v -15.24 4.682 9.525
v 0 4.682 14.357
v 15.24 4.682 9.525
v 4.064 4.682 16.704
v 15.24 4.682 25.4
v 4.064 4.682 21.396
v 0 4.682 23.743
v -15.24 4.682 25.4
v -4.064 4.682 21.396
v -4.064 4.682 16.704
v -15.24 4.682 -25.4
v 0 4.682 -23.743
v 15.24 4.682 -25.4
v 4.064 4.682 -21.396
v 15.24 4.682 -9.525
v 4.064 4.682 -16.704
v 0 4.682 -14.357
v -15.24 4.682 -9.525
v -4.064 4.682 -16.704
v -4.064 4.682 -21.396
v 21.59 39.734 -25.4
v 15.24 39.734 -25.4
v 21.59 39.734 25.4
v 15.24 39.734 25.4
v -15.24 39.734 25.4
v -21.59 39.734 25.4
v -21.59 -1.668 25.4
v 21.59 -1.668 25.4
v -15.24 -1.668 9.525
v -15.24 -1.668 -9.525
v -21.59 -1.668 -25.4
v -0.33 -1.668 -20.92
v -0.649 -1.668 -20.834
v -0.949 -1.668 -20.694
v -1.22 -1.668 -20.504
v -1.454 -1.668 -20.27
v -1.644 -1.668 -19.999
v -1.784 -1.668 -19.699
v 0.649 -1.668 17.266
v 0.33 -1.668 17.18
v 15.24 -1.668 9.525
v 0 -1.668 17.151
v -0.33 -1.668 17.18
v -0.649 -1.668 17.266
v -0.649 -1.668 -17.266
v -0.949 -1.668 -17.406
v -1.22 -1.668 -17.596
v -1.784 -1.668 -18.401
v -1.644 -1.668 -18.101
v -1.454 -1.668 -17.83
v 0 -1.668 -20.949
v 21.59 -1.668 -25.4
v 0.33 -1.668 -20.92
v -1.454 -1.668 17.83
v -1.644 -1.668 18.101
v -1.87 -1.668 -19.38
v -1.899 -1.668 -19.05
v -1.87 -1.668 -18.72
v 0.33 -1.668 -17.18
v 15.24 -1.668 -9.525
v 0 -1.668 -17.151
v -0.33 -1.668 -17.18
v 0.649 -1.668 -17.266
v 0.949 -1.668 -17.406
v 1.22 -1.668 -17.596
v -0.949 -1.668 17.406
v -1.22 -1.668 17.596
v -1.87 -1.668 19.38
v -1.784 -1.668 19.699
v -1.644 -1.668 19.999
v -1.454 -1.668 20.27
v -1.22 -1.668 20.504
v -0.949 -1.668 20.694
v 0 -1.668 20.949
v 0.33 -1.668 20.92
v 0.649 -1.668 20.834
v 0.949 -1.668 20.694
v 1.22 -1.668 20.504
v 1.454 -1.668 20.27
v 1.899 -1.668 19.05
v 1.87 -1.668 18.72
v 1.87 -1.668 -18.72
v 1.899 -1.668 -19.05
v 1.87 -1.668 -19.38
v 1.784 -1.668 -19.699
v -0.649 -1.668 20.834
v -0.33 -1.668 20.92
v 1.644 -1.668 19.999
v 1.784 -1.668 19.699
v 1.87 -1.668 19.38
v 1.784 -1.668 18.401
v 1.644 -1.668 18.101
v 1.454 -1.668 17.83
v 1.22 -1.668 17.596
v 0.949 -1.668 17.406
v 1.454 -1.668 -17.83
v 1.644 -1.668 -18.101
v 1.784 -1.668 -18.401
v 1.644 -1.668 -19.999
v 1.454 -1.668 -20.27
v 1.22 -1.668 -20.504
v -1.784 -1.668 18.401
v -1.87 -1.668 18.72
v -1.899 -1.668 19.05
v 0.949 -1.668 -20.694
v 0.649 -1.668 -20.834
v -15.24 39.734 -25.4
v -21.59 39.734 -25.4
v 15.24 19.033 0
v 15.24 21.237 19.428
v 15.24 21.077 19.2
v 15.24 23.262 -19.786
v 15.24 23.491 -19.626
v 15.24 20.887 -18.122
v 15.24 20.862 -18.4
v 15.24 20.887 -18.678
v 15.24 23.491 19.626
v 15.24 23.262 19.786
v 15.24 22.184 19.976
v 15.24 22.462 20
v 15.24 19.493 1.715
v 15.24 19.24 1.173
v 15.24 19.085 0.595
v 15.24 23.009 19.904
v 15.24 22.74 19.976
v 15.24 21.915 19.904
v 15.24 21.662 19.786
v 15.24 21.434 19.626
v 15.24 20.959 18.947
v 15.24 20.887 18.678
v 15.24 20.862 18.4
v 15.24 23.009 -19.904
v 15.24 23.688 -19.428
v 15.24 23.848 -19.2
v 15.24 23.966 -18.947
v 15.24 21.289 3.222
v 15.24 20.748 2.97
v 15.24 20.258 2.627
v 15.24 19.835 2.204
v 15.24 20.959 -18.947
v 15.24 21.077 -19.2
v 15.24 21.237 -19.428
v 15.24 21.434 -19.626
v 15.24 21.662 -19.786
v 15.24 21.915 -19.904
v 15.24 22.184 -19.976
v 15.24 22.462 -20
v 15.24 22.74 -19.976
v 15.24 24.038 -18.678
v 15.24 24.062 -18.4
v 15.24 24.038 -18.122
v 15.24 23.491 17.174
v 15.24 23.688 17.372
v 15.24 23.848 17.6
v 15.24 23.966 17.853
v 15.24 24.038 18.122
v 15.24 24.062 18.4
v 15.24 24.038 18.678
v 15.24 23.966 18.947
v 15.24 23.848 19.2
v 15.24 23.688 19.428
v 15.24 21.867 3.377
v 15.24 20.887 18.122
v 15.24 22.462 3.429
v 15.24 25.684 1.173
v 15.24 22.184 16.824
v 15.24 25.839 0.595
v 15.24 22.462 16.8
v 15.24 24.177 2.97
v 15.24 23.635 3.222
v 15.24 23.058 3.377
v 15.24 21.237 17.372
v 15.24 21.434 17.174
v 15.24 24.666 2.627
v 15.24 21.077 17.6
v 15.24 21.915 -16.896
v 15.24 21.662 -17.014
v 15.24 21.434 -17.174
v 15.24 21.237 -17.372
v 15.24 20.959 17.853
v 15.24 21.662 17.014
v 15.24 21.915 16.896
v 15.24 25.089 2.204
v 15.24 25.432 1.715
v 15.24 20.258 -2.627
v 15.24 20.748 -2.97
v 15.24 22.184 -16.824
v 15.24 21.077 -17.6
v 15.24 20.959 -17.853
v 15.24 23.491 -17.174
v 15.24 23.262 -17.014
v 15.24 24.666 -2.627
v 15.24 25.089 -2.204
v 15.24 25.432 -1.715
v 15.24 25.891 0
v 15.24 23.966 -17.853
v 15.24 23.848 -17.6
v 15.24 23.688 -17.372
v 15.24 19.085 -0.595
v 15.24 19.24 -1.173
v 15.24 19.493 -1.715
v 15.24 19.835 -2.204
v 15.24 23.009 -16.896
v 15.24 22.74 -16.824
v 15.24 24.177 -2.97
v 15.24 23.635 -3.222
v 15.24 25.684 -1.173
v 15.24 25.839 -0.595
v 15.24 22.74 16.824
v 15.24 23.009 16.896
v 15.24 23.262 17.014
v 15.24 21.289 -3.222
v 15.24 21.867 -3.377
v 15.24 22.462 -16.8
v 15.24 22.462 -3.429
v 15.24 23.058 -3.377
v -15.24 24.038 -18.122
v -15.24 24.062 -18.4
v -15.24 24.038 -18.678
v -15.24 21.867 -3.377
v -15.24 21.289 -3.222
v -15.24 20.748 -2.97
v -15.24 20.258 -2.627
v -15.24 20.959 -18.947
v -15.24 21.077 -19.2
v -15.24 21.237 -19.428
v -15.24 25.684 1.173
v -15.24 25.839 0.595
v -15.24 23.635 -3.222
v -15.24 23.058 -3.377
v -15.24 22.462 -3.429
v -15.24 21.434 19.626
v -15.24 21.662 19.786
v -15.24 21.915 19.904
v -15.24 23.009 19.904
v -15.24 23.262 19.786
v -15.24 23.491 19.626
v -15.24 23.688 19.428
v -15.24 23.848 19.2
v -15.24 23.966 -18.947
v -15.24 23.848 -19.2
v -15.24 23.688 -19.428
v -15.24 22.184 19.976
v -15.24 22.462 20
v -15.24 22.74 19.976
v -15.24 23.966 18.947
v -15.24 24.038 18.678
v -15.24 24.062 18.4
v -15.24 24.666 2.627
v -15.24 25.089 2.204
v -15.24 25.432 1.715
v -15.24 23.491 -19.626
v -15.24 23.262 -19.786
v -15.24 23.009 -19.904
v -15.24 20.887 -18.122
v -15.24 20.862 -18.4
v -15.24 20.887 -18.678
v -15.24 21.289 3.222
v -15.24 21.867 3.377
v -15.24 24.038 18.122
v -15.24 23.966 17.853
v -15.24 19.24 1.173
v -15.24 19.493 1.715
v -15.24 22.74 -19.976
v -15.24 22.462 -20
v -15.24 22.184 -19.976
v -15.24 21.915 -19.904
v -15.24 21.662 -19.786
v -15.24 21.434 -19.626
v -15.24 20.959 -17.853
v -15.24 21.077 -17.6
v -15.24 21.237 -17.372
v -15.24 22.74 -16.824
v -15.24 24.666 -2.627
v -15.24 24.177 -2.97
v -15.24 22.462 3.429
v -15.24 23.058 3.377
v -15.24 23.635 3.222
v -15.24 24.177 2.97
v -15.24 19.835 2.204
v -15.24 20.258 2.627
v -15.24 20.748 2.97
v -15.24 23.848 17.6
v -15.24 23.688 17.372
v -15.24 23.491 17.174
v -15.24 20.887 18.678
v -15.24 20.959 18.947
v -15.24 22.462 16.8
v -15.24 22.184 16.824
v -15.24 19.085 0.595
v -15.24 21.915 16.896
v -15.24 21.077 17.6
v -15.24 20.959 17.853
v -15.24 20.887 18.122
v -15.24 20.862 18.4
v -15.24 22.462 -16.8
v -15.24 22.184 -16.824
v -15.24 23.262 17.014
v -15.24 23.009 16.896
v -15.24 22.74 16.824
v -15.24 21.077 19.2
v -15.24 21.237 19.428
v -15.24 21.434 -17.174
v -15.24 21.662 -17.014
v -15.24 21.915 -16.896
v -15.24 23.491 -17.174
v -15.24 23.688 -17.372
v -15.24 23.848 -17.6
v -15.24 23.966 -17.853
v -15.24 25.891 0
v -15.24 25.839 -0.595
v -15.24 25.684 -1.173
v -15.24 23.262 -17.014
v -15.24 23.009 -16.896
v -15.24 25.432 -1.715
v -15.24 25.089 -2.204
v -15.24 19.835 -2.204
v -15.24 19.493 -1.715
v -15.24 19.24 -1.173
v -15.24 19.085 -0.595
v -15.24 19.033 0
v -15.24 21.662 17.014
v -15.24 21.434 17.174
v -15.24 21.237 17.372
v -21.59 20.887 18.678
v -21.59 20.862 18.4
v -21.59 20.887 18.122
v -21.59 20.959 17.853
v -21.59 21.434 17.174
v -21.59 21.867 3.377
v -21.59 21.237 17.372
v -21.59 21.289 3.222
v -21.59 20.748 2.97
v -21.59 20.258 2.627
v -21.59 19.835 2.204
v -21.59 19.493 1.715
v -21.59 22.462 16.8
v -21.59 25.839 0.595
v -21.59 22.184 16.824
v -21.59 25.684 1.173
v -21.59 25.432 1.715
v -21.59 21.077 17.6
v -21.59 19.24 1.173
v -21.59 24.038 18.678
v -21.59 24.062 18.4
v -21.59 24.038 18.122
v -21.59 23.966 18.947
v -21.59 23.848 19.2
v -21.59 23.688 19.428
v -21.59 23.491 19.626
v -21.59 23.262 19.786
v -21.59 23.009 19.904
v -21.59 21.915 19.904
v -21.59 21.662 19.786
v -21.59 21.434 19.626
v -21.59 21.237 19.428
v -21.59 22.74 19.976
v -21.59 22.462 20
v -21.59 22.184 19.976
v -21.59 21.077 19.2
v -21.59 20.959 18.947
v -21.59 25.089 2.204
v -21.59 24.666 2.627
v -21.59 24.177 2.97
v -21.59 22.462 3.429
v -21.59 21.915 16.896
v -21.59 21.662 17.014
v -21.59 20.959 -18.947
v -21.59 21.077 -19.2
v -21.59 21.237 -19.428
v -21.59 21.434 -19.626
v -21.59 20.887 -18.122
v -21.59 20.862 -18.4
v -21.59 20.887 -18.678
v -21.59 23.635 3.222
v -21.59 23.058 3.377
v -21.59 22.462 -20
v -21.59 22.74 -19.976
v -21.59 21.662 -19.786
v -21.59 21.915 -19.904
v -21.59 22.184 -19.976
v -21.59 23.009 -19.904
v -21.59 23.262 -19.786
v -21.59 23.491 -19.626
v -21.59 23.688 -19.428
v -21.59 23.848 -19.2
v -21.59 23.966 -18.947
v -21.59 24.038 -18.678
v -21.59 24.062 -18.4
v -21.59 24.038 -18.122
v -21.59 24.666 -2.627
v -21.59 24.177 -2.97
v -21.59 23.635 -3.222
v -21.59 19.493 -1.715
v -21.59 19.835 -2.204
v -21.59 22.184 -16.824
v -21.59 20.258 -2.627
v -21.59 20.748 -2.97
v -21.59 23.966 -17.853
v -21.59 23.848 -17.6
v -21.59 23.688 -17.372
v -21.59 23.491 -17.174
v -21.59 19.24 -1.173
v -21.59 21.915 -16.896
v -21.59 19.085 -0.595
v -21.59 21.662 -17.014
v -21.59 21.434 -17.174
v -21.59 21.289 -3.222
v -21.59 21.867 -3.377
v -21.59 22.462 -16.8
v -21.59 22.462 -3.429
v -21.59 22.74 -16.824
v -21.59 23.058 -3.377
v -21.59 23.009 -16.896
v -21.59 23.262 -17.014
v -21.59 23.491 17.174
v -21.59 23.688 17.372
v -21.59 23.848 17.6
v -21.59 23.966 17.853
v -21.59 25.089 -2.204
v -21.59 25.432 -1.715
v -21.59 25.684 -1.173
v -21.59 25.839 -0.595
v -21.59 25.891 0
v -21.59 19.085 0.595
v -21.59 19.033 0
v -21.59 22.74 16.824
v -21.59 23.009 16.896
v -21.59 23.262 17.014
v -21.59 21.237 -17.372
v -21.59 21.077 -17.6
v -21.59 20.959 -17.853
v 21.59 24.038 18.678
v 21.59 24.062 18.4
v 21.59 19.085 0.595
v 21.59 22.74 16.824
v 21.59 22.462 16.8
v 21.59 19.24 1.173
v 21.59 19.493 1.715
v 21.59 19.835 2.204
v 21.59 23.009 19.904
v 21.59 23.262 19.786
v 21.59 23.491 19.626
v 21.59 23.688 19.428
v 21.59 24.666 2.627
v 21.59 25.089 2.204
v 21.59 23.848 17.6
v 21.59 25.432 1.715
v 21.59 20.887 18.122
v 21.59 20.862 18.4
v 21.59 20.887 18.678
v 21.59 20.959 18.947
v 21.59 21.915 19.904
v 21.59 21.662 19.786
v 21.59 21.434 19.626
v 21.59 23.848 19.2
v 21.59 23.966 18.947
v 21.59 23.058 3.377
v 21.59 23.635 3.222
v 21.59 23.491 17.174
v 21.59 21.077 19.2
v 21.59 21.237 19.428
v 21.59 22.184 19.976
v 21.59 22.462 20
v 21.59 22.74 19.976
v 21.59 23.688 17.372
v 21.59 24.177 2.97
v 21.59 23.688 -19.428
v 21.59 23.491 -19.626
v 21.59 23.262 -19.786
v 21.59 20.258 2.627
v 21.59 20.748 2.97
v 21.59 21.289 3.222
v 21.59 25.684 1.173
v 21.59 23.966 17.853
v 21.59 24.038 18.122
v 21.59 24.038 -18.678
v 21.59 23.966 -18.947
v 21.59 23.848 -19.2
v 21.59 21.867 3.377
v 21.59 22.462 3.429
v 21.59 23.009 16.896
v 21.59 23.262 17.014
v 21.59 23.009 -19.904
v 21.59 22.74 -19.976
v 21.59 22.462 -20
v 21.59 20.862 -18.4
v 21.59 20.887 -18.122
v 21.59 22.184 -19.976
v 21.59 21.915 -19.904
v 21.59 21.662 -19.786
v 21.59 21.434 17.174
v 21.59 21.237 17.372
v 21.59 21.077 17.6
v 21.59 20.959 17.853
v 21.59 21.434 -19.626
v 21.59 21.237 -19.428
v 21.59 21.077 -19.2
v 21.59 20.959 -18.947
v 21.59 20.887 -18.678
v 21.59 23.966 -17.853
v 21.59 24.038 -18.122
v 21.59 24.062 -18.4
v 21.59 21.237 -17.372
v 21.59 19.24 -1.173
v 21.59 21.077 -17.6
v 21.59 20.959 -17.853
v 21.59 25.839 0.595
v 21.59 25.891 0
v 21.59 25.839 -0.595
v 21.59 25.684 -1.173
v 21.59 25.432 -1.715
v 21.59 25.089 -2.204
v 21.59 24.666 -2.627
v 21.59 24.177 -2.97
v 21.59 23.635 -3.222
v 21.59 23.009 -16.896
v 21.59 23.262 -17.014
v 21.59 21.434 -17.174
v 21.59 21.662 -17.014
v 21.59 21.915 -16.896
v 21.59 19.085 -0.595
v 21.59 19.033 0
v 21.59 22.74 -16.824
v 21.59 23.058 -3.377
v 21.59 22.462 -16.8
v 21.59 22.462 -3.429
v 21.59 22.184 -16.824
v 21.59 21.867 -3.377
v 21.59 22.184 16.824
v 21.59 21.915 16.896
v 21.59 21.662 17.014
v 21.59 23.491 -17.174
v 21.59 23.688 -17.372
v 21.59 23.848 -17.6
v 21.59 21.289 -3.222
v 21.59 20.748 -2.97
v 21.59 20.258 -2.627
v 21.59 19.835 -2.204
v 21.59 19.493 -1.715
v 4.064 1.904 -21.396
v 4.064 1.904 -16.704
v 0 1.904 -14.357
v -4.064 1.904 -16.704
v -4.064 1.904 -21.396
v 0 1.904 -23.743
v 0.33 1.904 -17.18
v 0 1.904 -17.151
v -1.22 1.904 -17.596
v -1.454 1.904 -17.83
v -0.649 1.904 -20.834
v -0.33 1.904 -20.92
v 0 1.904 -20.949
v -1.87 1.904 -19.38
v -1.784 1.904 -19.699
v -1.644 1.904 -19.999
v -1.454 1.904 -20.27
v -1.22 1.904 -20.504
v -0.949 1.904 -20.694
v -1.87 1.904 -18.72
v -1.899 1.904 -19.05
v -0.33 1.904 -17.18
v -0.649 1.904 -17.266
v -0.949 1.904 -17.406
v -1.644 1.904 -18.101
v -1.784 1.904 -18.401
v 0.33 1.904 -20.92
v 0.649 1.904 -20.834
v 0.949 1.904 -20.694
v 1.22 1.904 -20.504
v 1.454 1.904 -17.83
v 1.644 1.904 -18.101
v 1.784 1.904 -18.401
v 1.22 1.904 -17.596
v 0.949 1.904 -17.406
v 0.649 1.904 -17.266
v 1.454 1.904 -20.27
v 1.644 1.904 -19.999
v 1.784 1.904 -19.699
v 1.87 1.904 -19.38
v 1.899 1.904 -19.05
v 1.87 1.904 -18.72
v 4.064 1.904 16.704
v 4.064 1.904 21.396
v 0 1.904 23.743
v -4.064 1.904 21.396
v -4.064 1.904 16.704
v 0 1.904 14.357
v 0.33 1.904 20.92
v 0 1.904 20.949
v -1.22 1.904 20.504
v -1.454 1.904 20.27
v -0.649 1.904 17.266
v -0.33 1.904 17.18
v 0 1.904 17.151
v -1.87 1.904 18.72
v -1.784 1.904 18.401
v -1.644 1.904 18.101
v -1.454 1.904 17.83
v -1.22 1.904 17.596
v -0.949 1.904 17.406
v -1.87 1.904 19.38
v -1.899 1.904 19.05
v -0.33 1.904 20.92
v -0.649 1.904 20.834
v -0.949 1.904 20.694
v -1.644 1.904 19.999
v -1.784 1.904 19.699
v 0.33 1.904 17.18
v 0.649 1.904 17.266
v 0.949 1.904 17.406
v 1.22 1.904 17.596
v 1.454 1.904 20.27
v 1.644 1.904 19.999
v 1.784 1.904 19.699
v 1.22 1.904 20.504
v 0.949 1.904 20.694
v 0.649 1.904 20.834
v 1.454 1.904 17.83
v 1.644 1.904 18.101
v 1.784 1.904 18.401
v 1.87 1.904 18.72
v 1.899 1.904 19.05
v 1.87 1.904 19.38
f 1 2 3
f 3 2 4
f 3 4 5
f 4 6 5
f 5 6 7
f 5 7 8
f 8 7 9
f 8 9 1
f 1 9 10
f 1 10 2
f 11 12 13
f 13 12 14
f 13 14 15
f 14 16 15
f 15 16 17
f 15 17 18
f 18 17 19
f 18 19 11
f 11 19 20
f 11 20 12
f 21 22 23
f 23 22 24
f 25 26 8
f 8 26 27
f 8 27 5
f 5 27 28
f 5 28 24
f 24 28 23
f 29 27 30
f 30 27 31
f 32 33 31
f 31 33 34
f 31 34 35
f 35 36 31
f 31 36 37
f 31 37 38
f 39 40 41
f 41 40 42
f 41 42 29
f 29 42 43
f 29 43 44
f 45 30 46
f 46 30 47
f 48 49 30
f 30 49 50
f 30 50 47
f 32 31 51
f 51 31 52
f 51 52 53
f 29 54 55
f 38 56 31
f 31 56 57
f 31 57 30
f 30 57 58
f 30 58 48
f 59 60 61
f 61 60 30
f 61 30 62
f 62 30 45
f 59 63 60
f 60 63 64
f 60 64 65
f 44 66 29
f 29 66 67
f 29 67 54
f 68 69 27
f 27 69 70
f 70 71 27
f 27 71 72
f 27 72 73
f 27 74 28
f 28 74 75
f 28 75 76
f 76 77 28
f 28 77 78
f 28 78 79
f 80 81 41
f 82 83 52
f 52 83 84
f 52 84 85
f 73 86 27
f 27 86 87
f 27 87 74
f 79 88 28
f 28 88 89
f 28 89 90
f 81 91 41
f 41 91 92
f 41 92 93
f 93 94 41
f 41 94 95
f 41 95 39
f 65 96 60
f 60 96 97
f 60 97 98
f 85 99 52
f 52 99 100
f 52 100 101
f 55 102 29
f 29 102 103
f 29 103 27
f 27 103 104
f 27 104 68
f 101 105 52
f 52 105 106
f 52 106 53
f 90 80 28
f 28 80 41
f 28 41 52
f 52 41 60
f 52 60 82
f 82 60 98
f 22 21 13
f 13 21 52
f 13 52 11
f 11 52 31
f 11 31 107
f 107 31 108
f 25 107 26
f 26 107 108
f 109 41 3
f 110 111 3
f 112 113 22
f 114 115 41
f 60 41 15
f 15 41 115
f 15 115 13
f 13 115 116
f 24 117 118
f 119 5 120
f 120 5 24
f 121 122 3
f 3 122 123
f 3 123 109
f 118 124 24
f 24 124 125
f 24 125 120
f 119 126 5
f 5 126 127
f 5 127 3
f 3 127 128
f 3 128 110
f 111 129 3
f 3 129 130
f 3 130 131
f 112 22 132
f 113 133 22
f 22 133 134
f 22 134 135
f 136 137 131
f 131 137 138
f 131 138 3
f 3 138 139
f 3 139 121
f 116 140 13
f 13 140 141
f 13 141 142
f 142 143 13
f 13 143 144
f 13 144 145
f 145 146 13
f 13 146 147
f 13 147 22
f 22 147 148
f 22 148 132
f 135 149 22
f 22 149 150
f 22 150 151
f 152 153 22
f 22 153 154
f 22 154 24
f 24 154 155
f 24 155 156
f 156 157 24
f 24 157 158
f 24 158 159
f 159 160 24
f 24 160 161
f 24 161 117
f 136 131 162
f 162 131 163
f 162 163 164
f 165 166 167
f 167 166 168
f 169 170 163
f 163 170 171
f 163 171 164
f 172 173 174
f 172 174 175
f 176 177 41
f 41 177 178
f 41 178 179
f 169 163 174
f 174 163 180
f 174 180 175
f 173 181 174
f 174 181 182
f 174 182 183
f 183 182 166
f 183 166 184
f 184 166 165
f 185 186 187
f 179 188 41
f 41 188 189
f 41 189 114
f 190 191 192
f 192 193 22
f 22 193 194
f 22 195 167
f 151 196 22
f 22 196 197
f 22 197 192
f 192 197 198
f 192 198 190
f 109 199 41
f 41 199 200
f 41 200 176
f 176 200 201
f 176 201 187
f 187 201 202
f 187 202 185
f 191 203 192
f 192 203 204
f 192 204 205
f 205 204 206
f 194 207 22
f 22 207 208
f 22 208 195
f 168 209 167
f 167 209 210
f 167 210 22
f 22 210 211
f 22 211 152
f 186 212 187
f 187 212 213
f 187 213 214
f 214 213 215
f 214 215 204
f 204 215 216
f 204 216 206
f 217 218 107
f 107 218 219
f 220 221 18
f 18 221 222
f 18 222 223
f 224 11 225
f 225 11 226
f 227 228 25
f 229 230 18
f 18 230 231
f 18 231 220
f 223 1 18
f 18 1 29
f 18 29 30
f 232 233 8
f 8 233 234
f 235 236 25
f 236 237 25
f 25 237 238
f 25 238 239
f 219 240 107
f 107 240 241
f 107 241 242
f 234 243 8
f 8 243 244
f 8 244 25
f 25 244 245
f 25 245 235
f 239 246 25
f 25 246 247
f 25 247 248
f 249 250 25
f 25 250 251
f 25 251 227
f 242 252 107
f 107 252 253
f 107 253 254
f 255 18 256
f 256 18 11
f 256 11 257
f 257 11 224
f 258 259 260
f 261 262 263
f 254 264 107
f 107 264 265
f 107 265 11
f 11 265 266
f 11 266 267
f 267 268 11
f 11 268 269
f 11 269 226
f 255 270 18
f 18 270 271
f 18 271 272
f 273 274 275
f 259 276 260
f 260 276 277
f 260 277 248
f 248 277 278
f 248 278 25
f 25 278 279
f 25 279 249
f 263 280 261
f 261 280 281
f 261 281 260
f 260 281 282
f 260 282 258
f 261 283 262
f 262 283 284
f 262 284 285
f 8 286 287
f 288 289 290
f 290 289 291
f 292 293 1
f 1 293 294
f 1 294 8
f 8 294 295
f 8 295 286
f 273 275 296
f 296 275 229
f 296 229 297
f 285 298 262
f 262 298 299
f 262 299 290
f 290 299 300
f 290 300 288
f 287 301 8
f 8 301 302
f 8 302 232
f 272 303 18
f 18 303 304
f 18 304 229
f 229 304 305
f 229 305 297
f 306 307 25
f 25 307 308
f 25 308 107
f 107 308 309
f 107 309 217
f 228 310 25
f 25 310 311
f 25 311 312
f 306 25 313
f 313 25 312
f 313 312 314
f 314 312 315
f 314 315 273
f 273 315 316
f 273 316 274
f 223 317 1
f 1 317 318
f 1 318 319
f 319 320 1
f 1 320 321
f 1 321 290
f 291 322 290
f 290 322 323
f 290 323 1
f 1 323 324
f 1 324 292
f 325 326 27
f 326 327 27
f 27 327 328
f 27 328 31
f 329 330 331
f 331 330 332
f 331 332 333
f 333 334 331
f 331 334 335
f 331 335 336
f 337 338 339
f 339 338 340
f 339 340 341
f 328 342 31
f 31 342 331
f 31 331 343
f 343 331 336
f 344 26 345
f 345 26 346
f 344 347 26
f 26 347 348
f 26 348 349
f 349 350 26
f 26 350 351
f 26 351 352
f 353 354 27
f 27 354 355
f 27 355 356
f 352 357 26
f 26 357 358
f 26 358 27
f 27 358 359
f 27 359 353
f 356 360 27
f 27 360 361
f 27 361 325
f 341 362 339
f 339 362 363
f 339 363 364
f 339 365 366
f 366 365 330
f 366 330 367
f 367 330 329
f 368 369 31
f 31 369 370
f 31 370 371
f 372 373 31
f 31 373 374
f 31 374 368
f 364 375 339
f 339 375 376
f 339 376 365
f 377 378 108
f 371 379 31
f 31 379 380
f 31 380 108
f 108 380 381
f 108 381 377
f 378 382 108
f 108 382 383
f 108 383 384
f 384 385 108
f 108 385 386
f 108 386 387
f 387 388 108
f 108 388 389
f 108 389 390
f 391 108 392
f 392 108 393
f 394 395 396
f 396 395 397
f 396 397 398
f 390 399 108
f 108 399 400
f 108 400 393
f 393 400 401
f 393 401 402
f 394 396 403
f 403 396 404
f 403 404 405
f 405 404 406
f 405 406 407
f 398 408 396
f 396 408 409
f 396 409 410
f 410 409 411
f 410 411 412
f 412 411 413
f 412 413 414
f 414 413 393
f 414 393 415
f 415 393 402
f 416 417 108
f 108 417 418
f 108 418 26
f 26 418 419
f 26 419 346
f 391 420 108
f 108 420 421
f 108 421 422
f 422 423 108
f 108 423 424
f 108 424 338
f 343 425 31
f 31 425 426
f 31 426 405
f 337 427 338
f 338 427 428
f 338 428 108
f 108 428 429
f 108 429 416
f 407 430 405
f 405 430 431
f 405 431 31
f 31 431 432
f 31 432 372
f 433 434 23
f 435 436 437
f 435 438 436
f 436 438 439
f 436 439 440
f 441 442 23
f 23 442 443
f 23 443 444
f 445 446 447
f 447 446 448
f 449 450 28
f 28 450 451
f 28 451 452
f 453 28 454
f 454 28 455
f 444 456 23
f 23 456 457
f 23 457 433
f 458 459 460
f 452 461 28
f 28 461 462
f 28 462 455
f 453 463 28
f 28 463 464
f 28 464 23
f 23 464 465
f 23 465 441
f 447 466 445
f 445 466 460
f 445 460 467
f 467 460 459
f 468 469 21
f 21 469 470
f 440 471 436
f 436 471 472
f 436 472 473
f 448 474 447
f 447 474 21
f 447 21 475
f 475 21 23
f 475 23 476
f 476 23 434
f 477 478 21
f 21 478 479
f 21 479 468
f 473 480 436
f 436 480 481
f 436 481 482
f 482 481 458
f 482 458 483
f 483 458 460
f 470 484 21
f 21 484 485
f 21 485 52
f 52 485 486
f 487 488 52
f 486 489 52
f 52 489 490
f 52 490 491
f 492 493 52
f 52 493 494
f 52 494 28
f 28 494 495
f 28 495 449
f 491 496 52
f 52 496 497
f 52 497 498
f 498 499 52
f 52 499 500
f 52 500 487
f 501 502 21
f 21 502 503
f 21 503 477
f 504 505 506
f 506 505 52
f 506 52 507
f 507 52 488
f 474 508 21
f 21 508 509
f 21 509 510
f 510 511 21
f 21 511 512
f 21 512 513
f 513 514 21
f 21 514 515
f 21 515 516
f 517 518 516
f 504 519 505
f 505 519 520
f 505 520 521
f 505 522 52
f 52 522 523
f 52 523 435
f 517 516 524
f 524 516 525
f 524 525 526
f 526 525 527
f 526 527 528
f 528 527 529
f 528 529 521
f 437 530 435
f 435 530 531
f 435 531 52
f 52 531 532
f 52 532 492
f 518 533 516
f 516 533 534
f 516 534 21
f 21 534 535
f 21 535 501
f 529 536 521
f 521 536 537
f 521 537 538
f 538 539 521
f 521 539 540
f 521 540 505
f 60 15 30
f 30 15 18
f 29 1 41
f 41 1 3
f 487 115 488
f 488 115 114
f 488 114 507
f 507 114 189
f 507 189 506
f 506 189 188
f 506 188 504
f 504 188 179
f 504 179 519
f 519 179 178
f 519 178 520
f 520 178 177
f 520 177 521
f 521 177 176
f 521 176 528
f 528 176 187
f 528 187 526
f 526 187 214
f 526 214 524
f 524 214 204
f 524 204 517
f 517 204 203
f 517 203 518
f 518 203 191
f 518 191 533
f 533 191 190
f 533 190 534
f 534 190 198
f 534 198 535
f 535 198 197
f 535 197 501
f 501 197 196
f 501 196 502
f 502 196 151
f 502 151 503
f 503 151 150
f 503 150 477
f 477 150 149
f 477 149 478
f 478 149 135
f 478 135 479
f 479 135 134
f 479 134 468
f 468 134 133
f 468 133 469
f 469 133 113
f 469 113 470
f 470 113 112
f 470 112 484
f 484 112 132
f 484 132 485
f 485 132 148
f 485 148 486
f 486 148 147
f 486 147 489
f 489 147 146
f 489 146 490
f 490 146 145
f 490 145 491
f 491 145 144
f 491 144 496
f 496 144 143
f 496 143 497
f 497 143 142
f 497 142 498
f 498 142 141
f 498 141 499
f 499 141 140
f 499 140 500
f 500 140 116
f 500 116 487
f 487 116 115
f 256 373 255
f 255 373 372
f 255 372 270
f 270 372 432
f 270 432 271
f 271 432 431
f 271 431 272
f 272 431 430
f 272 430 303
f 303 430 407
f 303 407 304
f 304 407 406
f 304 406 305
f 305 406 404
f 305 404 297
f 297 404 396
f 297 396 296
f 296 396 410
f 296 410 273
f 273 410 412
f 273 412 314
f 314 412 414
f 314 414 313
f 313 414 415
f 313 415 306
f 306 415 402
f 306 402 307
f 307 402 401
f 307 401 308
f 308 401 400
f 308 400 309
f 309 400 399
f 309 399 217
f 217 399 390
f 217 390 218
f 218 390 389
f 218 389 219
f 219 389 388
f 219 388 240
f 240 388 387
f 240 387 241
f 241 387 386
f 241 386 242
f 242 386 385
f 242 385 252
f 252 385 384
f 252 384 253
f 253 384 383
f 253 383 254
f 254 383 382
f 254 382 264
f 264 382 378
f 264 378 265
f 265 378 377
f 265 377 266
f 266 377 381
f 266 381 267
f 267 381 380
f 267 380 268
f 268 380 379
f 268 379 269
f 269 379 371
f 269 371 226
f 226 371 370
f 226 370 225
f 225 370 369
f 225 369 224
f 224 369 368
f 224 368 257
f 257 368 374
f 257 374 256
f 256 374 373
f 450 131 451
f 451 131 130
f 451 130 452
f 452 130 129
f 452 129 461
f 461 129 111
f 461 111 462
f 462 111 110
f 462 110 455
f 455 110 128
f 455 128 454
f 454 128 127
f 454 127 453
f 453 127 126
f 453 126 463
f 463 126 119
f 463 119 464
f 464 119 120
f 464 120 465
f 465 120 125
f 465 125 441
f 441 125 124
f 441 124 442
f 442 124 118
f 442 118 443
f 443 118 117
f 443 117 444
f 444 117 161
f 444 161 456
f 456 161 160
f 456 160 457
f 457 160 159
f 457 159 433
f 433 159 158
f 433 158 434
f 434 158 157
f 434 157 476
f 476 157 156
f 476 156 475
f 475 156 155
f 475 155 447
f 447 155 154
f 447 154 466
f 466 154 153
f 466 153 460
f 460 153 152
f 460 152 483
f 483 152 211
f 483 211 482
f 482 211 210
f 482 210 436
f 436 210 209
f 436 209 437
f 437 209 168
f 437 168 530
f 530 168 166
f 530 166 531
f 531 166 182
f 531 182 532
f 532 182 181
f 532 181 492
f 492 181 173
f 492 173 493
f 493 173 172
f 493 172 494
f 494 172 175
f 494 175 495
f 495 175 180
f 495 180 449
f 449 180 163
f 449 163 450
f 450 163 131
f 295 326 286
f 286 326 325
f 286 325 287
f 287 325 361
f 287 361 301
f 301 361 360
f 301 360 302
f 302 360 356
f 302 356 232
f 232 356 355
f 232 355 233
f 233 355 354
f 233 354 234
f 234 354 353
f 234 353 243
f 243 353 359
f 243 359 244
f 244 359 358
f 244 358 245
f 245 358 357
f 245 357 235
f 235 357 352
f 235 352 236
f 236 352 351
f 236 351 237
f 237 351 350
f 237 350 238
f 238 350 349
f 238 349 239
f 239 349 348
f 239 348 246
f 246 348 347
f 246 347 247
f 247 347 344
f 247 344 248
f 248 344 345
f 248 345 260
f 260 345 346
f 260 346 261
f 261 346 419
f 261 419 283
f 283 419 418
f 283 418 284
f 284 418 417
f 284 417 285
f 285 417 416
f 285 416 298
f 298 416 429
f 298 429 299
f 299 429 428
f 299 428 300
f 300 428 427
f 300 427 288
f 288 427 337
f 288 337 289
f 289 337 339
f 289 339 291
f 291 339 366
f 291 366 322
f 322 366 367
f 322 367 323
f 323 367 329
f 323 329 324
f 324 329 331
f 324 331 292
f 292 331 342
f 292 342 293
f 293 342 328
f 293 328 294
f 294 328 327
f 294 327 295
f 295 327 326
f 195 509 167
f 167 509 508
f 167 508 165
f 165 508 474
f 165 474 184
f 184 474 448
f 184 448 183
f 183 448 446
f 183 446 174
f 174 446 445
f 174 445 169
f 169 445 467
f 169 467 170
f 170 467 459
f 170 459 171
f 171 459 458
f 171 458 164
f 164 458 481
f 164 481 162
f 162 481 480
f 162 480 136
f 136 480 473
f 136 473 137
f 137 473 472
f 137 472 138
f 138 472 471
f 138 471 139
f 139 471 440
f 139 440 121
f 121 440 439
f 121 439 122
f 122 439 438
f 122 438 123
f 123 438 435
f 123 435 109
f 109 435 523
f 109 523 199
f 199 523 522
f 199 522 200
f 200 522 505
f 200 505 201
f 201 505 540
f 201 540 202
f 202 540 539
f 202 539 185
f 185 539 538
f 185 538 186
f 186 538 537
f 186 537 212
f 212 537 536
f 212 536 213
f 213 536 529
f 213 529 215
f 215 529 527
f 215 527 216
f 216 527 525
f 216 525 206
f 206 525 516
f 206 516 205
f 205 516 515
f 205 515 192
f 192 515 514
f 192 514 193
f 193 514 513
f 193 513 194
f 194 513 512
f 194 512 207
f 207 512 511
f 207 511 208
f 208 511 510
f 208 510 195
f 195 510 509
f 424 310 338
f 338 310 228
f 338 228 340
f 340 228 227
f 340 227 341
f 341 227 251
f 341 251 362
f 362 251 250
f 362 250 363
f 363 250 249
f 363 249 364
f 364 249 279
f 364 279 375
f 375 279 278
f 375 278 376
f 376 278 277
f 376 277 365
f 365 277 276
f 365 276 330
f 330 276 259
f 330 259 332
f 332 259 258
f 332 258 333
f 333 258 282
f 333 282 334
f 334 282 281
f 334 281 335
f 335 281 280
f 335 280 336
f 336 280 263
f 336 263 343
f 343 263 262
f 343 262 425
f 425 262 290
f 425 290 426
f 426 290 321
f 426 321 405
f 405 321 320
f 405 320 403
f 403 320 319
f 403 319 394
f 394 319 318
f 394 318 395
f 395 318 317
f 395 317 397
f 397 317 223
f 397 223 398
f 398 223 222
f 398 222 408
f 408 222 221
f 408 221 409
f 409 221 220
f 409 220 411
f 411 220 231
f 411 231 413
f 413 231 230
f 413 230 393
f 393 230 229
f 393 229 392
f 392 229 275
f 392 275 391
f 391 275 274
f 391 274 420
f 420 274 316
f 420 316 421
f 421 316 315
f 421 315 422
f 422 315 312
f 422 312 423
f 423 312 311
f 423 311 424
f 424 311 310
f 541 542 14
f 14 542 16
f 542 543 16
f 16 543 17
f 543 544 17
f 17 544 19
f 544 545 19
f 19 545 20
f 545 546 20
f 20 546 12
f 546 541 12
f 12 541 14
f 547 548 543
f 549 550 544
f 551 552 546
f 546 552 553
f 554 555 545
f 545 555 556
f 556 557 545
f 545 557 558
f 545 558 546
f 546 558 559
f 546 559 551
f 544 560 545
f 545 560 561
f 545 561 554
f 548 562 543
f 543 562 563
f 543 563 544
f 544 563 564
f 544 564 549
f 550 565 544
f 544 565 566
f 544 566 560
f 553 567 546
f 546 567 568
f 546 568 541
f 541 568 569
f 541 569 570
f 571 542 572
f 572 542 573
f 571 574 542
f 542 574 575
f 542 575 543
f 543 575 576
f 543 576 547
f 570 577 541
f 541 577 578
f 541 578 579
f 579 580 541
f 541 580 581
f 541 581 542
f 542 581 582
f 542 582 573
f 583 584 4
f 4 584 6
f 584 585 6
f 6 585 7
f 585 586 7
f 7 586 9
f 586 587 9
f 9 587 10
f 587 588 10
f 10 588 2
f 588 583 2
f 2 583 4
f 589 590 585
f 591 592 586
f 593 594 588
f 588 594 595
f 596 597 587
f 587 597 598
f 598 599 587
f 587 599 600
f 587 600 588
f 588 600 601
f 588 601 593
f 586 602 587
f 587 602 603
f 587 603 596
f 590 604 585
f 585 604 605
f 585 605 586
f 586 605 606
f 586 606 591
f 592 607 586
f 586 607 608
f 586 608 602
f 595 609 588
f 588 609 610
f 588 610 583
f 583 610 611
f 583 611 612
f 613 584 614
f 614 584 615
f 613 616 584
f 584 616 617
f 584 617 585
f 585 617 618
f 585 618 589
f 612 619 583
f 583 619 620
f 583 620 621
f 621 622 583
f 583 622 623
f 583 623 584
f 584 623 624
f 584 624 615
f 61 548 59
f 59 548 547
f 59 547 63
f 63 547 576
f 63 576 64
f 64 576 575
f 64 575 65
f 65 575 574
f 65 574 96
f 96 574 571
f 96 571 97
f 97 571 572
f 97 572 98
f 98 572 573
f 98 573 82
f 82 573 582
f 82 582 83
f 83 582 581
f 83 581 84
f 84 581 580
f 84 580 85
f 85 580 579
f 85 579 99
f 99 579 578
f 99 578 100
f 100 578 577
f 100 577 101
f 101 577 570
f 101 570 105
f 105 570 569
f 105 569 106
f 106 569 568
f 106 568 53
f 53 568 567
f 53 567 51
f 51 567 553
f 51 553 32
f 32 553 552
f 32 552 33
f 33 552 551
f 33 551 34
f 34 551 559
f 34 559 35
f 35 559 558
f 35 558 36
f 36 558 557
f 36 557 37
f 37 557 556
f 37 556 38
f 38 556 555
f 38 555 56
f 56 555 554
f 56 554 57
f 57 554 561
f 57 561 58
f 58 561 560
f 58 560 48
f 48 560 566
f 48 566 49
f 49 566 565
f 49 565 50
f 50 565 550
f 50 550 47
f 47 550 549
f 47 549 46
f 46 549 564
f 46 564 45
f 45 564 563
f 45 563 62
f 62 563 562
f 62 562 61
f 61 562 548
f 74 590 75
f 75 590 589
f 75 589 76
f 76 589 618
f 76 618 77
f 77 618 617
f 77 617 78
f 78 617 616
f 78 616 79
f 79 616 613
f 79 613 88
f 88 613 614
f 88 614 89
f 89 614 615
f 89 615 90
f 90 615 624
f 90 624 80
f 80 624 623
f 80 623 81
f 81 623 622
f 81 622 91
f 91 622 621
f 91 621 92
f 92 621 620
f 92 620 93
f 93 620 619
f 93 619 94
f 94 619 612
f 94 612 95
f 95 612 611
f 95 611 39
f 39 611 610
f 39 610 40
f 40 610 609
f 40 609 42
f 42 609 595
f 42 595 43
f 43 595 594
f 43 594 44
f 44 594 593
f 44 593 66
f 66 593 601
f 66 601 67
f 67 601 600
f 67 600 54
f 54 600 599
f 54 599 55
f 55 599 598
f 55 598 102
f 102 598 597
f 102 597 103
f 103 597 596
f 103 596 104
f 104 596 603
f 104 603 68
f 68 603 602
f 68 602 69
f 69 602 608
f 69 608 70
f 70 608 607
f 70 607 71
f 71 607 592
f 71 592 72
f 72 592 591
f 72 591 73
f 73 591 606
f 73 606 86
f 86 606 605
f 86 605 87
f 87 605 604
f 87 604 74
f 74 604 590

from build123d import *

# Parameters (mm, degrees)
BOSS_EXTRUDE1_DEPTH      = 12.7
BOSS_EXTRUDE1_DEPTH_BACK = 12.7
SKETCH1_R                = 4.445
SKETCH9_W                = 30.48
SKETCH9_H                = 35.052
CUT_EXTRUDE6_DEPTH       = 60.613097773
BOSS_EXTRUDE3_DEPTH      = 12.7
SKETCH11_W               = 5.350768363
SKETCH11_H               = 57.15
CUT_EXTRUDE7_DEPTH       = 75.08914513
SKETCH12_W               = 30.48
SKETCH12_H               = 19.05
CUT_EXTRUDE8_DEPTH       = 89.211973463
SKETCH14_R               = 1.6
CUT_EXTRUDE9_DEPTH       = 75.795998583
SKETCH15_R               = 3.429
CUT_EXTRUDE10_DEPTH      = 75.795998583
CUT_EXTRUDE11_DEPTH      = 2.778125
F_6_CLEARANCE_HOLE1_D    = 3.7973
SKETCH25_W               = 89.81357484
SKETCH25_H               = 39.457269438
CUT_EXTRUDE14_DEPTH      = 67.031594151


with BuildPart() as part:
    # Sketch1 → Boss-Extrude1 (new, two sides: drawn at the far end of the back side and taken through both)
    with BuildSketch(Plane.XY.offset(-BOSS_EXTRUDE1_DEPTH_BACK)):
        with BuildLine():
            Line((-26.940768363, -17.415768363), (-26.940768363, 39.734231637))
            Line((-26.940768363, 39.734231637), (26.940768363, 39.734231637))
            Line((26.940768363, 39.734231637), (26.940768363, -17.415768363))
            ThreePointArc((26.940768363, -17.415768363), (36.465768363, -26.940768363), (26.940768363, -36.465768363))
            Line((26.940768363, -36.465768363), (-26.940768363, -36.465768363))
            ThreePointArc((-26.940768363, -36.465768363), (-36.465768363, -26.940768363), (-26.940768363, -17.415768363))
        make_face()
        with Locations((-26.940768363, -26.940768363)):
            Circle(SKETCH1_R, mode=Mode.SUBTRACT)
        with Locations((26.940768363, -26.940768363)):
            Circle(SKETCH1_R, mode=Mode.SUBTRACT)
    extrude(amount=BOSS_EXTRUDE1_DEPTH + BOSS_EXTRUDE1_DEPTH_BACK)

    # Sketch9 → Cut-Extrude6 (cut, through all)
    with BuildSketch(Plane.XY.offset(12.7)):
        with Locations((0, 22.208231637)):
            Rectangle(SKETCH9_W, SKETCH9_H)
    extrude(amount=-CUT_EXTRUDE6_DEPTH, mode=Mode.SUBTRACT)

    # Sketch10 → Boss-Extrude3 (add)
    with BuildSketch(Plane.XY.offset(12.7)):
        Polygon((-26.940768363, 39.734231637), (-26.940768363, -1.667768363), (26.940768363, -1.667768363), (26.940768363, 39.734231637), (15.24, 39.734231637), (15.24, 4.682231637), (-15.24, 4.682231637), (-15.24, 39.734231637), align=None)
    boss_extrude3 = extrude(amount=BOSS_EXTRUDE3_DEPTH)

    # Mirror4: Boss-Extrude3 across plane
    add(boss_extrude3.mirror(Plane.XY))

    # Sketch11 → Cut-Extrude7 (cut, through all)
    with BuildSketch(Plane.XY.offset(25.4)):
        with Locations((-24.265384181, 11.159231637)):
            Rectangle(SKETCH11_W, SKETCH11_H)
    cut_extrude7 = extrude(amount=-CUT_EXTRUDE7_DEPTH, mode=Mode.SUBTRACT)

    # Mirror5: Cut-Extrude7 across plane
    add(cut_extrude7.mirror(Plane(origin=(0, 0, 0), x_dir=(0, 0, 1), z_dir=(1, 0, 0))), mode=Mode.SUBTRACT)

    # Sketch12 → Cut-Extrude8 (cut, through all)
    with BuildSketch(Plane.XZ.offset(36.465768363)):
        Rectangle(SKETCH12_W, SKETCH12_H)
    extrude(amount=-CUT_EXTRUDE8_DEPTH, mode=Mode.SUBTRACT)

    # Sketch14 → Cut-Extrude9 (cut, through all)
    with BuildSketch(Plane.ZY.offset(21.59)):
        with Locations((-18.4, 22.462231637)):
            Circle(SKETCH14_R)
    cut_extrude9 = extrude(amount=-CUT_EXTRUDE9_DEPTH, mode=Mode.SUBTRACT)

    # Mirror6: Cut-Extrude9 across plane
    add(cut_extrude9.mirror(Plane.XY), mode=Mode.SUBTRACT)

    # Sketch15 → Cut-Extrude10 (cut, through all)
    with BuildSketch(Plane(origin=(21.59, 0, 0), x_dir=(0, 0, -1), z_dir=(1, 0, 0))):
        with Locations((0, 22.462231637)):
            Circle(SKETCH15_R)
    extrude(amount=-CUT_EXTRUDE10_DEPTH, mode=Mode.SUBTRACT)

    # Sketch18 → Cut-Extrude11 (cut)
    with BuildSketch(Plane(origin=(0, 4.682231637, 0), x_dir=(1, 0, 0), z_dir=(0, 1, 0))):
        Polygon((4.064, 21.396351494), (0, 23.742702988), (-4.064, 21.396351494), (-4.064, 16.703648506), (0, 14.357297012), (4.064, 16.703648506), align=None)
    cut_extrude11 = extrude(amount=-CUT_EXTRUDE11_DEPTH, mode=Mode.SUBTRACT)

    # Mirror7: Cut-Extrude11 across plane
    add(cut_extrude11.mirror(Plane.XY), mode=Mode.SUBTRACT)

    # #6 Clearance Hole1 (through all)
    with Locations(Plane(origin=(0, 1.904106637, 0), x_dir=(1, 0, 0), z_dir=(0, 1, 0))):
        with Locations((0, 19.05)):
            f_6_clearance_hole1 = Hole(F_6_CLEARANCE_HOLE1_D / 2)

    # Mirror8: #6 Clearance Hole1 across plane
    add(f_6_clearance_hole1.mirror(Plane.XY), mode=Mode.SUBTRACT)

    # Sketch25 → Cut-Extrude14 (cut, through all)
    with BuildSketch(Plane(origin=(0, 0, -12.7), x_dir=(-1, 0, 0), z_dir=(0, 0, -1))):
        with Locations((0.758793643, -21.396403082)):
            Rectangle(SKETCH25_W, SKETCH25_H)
    extrude(amount=-CUT_EXTRUDE14_DEPTH, mode=Mode.SUBTRACT)


solid = part.part
